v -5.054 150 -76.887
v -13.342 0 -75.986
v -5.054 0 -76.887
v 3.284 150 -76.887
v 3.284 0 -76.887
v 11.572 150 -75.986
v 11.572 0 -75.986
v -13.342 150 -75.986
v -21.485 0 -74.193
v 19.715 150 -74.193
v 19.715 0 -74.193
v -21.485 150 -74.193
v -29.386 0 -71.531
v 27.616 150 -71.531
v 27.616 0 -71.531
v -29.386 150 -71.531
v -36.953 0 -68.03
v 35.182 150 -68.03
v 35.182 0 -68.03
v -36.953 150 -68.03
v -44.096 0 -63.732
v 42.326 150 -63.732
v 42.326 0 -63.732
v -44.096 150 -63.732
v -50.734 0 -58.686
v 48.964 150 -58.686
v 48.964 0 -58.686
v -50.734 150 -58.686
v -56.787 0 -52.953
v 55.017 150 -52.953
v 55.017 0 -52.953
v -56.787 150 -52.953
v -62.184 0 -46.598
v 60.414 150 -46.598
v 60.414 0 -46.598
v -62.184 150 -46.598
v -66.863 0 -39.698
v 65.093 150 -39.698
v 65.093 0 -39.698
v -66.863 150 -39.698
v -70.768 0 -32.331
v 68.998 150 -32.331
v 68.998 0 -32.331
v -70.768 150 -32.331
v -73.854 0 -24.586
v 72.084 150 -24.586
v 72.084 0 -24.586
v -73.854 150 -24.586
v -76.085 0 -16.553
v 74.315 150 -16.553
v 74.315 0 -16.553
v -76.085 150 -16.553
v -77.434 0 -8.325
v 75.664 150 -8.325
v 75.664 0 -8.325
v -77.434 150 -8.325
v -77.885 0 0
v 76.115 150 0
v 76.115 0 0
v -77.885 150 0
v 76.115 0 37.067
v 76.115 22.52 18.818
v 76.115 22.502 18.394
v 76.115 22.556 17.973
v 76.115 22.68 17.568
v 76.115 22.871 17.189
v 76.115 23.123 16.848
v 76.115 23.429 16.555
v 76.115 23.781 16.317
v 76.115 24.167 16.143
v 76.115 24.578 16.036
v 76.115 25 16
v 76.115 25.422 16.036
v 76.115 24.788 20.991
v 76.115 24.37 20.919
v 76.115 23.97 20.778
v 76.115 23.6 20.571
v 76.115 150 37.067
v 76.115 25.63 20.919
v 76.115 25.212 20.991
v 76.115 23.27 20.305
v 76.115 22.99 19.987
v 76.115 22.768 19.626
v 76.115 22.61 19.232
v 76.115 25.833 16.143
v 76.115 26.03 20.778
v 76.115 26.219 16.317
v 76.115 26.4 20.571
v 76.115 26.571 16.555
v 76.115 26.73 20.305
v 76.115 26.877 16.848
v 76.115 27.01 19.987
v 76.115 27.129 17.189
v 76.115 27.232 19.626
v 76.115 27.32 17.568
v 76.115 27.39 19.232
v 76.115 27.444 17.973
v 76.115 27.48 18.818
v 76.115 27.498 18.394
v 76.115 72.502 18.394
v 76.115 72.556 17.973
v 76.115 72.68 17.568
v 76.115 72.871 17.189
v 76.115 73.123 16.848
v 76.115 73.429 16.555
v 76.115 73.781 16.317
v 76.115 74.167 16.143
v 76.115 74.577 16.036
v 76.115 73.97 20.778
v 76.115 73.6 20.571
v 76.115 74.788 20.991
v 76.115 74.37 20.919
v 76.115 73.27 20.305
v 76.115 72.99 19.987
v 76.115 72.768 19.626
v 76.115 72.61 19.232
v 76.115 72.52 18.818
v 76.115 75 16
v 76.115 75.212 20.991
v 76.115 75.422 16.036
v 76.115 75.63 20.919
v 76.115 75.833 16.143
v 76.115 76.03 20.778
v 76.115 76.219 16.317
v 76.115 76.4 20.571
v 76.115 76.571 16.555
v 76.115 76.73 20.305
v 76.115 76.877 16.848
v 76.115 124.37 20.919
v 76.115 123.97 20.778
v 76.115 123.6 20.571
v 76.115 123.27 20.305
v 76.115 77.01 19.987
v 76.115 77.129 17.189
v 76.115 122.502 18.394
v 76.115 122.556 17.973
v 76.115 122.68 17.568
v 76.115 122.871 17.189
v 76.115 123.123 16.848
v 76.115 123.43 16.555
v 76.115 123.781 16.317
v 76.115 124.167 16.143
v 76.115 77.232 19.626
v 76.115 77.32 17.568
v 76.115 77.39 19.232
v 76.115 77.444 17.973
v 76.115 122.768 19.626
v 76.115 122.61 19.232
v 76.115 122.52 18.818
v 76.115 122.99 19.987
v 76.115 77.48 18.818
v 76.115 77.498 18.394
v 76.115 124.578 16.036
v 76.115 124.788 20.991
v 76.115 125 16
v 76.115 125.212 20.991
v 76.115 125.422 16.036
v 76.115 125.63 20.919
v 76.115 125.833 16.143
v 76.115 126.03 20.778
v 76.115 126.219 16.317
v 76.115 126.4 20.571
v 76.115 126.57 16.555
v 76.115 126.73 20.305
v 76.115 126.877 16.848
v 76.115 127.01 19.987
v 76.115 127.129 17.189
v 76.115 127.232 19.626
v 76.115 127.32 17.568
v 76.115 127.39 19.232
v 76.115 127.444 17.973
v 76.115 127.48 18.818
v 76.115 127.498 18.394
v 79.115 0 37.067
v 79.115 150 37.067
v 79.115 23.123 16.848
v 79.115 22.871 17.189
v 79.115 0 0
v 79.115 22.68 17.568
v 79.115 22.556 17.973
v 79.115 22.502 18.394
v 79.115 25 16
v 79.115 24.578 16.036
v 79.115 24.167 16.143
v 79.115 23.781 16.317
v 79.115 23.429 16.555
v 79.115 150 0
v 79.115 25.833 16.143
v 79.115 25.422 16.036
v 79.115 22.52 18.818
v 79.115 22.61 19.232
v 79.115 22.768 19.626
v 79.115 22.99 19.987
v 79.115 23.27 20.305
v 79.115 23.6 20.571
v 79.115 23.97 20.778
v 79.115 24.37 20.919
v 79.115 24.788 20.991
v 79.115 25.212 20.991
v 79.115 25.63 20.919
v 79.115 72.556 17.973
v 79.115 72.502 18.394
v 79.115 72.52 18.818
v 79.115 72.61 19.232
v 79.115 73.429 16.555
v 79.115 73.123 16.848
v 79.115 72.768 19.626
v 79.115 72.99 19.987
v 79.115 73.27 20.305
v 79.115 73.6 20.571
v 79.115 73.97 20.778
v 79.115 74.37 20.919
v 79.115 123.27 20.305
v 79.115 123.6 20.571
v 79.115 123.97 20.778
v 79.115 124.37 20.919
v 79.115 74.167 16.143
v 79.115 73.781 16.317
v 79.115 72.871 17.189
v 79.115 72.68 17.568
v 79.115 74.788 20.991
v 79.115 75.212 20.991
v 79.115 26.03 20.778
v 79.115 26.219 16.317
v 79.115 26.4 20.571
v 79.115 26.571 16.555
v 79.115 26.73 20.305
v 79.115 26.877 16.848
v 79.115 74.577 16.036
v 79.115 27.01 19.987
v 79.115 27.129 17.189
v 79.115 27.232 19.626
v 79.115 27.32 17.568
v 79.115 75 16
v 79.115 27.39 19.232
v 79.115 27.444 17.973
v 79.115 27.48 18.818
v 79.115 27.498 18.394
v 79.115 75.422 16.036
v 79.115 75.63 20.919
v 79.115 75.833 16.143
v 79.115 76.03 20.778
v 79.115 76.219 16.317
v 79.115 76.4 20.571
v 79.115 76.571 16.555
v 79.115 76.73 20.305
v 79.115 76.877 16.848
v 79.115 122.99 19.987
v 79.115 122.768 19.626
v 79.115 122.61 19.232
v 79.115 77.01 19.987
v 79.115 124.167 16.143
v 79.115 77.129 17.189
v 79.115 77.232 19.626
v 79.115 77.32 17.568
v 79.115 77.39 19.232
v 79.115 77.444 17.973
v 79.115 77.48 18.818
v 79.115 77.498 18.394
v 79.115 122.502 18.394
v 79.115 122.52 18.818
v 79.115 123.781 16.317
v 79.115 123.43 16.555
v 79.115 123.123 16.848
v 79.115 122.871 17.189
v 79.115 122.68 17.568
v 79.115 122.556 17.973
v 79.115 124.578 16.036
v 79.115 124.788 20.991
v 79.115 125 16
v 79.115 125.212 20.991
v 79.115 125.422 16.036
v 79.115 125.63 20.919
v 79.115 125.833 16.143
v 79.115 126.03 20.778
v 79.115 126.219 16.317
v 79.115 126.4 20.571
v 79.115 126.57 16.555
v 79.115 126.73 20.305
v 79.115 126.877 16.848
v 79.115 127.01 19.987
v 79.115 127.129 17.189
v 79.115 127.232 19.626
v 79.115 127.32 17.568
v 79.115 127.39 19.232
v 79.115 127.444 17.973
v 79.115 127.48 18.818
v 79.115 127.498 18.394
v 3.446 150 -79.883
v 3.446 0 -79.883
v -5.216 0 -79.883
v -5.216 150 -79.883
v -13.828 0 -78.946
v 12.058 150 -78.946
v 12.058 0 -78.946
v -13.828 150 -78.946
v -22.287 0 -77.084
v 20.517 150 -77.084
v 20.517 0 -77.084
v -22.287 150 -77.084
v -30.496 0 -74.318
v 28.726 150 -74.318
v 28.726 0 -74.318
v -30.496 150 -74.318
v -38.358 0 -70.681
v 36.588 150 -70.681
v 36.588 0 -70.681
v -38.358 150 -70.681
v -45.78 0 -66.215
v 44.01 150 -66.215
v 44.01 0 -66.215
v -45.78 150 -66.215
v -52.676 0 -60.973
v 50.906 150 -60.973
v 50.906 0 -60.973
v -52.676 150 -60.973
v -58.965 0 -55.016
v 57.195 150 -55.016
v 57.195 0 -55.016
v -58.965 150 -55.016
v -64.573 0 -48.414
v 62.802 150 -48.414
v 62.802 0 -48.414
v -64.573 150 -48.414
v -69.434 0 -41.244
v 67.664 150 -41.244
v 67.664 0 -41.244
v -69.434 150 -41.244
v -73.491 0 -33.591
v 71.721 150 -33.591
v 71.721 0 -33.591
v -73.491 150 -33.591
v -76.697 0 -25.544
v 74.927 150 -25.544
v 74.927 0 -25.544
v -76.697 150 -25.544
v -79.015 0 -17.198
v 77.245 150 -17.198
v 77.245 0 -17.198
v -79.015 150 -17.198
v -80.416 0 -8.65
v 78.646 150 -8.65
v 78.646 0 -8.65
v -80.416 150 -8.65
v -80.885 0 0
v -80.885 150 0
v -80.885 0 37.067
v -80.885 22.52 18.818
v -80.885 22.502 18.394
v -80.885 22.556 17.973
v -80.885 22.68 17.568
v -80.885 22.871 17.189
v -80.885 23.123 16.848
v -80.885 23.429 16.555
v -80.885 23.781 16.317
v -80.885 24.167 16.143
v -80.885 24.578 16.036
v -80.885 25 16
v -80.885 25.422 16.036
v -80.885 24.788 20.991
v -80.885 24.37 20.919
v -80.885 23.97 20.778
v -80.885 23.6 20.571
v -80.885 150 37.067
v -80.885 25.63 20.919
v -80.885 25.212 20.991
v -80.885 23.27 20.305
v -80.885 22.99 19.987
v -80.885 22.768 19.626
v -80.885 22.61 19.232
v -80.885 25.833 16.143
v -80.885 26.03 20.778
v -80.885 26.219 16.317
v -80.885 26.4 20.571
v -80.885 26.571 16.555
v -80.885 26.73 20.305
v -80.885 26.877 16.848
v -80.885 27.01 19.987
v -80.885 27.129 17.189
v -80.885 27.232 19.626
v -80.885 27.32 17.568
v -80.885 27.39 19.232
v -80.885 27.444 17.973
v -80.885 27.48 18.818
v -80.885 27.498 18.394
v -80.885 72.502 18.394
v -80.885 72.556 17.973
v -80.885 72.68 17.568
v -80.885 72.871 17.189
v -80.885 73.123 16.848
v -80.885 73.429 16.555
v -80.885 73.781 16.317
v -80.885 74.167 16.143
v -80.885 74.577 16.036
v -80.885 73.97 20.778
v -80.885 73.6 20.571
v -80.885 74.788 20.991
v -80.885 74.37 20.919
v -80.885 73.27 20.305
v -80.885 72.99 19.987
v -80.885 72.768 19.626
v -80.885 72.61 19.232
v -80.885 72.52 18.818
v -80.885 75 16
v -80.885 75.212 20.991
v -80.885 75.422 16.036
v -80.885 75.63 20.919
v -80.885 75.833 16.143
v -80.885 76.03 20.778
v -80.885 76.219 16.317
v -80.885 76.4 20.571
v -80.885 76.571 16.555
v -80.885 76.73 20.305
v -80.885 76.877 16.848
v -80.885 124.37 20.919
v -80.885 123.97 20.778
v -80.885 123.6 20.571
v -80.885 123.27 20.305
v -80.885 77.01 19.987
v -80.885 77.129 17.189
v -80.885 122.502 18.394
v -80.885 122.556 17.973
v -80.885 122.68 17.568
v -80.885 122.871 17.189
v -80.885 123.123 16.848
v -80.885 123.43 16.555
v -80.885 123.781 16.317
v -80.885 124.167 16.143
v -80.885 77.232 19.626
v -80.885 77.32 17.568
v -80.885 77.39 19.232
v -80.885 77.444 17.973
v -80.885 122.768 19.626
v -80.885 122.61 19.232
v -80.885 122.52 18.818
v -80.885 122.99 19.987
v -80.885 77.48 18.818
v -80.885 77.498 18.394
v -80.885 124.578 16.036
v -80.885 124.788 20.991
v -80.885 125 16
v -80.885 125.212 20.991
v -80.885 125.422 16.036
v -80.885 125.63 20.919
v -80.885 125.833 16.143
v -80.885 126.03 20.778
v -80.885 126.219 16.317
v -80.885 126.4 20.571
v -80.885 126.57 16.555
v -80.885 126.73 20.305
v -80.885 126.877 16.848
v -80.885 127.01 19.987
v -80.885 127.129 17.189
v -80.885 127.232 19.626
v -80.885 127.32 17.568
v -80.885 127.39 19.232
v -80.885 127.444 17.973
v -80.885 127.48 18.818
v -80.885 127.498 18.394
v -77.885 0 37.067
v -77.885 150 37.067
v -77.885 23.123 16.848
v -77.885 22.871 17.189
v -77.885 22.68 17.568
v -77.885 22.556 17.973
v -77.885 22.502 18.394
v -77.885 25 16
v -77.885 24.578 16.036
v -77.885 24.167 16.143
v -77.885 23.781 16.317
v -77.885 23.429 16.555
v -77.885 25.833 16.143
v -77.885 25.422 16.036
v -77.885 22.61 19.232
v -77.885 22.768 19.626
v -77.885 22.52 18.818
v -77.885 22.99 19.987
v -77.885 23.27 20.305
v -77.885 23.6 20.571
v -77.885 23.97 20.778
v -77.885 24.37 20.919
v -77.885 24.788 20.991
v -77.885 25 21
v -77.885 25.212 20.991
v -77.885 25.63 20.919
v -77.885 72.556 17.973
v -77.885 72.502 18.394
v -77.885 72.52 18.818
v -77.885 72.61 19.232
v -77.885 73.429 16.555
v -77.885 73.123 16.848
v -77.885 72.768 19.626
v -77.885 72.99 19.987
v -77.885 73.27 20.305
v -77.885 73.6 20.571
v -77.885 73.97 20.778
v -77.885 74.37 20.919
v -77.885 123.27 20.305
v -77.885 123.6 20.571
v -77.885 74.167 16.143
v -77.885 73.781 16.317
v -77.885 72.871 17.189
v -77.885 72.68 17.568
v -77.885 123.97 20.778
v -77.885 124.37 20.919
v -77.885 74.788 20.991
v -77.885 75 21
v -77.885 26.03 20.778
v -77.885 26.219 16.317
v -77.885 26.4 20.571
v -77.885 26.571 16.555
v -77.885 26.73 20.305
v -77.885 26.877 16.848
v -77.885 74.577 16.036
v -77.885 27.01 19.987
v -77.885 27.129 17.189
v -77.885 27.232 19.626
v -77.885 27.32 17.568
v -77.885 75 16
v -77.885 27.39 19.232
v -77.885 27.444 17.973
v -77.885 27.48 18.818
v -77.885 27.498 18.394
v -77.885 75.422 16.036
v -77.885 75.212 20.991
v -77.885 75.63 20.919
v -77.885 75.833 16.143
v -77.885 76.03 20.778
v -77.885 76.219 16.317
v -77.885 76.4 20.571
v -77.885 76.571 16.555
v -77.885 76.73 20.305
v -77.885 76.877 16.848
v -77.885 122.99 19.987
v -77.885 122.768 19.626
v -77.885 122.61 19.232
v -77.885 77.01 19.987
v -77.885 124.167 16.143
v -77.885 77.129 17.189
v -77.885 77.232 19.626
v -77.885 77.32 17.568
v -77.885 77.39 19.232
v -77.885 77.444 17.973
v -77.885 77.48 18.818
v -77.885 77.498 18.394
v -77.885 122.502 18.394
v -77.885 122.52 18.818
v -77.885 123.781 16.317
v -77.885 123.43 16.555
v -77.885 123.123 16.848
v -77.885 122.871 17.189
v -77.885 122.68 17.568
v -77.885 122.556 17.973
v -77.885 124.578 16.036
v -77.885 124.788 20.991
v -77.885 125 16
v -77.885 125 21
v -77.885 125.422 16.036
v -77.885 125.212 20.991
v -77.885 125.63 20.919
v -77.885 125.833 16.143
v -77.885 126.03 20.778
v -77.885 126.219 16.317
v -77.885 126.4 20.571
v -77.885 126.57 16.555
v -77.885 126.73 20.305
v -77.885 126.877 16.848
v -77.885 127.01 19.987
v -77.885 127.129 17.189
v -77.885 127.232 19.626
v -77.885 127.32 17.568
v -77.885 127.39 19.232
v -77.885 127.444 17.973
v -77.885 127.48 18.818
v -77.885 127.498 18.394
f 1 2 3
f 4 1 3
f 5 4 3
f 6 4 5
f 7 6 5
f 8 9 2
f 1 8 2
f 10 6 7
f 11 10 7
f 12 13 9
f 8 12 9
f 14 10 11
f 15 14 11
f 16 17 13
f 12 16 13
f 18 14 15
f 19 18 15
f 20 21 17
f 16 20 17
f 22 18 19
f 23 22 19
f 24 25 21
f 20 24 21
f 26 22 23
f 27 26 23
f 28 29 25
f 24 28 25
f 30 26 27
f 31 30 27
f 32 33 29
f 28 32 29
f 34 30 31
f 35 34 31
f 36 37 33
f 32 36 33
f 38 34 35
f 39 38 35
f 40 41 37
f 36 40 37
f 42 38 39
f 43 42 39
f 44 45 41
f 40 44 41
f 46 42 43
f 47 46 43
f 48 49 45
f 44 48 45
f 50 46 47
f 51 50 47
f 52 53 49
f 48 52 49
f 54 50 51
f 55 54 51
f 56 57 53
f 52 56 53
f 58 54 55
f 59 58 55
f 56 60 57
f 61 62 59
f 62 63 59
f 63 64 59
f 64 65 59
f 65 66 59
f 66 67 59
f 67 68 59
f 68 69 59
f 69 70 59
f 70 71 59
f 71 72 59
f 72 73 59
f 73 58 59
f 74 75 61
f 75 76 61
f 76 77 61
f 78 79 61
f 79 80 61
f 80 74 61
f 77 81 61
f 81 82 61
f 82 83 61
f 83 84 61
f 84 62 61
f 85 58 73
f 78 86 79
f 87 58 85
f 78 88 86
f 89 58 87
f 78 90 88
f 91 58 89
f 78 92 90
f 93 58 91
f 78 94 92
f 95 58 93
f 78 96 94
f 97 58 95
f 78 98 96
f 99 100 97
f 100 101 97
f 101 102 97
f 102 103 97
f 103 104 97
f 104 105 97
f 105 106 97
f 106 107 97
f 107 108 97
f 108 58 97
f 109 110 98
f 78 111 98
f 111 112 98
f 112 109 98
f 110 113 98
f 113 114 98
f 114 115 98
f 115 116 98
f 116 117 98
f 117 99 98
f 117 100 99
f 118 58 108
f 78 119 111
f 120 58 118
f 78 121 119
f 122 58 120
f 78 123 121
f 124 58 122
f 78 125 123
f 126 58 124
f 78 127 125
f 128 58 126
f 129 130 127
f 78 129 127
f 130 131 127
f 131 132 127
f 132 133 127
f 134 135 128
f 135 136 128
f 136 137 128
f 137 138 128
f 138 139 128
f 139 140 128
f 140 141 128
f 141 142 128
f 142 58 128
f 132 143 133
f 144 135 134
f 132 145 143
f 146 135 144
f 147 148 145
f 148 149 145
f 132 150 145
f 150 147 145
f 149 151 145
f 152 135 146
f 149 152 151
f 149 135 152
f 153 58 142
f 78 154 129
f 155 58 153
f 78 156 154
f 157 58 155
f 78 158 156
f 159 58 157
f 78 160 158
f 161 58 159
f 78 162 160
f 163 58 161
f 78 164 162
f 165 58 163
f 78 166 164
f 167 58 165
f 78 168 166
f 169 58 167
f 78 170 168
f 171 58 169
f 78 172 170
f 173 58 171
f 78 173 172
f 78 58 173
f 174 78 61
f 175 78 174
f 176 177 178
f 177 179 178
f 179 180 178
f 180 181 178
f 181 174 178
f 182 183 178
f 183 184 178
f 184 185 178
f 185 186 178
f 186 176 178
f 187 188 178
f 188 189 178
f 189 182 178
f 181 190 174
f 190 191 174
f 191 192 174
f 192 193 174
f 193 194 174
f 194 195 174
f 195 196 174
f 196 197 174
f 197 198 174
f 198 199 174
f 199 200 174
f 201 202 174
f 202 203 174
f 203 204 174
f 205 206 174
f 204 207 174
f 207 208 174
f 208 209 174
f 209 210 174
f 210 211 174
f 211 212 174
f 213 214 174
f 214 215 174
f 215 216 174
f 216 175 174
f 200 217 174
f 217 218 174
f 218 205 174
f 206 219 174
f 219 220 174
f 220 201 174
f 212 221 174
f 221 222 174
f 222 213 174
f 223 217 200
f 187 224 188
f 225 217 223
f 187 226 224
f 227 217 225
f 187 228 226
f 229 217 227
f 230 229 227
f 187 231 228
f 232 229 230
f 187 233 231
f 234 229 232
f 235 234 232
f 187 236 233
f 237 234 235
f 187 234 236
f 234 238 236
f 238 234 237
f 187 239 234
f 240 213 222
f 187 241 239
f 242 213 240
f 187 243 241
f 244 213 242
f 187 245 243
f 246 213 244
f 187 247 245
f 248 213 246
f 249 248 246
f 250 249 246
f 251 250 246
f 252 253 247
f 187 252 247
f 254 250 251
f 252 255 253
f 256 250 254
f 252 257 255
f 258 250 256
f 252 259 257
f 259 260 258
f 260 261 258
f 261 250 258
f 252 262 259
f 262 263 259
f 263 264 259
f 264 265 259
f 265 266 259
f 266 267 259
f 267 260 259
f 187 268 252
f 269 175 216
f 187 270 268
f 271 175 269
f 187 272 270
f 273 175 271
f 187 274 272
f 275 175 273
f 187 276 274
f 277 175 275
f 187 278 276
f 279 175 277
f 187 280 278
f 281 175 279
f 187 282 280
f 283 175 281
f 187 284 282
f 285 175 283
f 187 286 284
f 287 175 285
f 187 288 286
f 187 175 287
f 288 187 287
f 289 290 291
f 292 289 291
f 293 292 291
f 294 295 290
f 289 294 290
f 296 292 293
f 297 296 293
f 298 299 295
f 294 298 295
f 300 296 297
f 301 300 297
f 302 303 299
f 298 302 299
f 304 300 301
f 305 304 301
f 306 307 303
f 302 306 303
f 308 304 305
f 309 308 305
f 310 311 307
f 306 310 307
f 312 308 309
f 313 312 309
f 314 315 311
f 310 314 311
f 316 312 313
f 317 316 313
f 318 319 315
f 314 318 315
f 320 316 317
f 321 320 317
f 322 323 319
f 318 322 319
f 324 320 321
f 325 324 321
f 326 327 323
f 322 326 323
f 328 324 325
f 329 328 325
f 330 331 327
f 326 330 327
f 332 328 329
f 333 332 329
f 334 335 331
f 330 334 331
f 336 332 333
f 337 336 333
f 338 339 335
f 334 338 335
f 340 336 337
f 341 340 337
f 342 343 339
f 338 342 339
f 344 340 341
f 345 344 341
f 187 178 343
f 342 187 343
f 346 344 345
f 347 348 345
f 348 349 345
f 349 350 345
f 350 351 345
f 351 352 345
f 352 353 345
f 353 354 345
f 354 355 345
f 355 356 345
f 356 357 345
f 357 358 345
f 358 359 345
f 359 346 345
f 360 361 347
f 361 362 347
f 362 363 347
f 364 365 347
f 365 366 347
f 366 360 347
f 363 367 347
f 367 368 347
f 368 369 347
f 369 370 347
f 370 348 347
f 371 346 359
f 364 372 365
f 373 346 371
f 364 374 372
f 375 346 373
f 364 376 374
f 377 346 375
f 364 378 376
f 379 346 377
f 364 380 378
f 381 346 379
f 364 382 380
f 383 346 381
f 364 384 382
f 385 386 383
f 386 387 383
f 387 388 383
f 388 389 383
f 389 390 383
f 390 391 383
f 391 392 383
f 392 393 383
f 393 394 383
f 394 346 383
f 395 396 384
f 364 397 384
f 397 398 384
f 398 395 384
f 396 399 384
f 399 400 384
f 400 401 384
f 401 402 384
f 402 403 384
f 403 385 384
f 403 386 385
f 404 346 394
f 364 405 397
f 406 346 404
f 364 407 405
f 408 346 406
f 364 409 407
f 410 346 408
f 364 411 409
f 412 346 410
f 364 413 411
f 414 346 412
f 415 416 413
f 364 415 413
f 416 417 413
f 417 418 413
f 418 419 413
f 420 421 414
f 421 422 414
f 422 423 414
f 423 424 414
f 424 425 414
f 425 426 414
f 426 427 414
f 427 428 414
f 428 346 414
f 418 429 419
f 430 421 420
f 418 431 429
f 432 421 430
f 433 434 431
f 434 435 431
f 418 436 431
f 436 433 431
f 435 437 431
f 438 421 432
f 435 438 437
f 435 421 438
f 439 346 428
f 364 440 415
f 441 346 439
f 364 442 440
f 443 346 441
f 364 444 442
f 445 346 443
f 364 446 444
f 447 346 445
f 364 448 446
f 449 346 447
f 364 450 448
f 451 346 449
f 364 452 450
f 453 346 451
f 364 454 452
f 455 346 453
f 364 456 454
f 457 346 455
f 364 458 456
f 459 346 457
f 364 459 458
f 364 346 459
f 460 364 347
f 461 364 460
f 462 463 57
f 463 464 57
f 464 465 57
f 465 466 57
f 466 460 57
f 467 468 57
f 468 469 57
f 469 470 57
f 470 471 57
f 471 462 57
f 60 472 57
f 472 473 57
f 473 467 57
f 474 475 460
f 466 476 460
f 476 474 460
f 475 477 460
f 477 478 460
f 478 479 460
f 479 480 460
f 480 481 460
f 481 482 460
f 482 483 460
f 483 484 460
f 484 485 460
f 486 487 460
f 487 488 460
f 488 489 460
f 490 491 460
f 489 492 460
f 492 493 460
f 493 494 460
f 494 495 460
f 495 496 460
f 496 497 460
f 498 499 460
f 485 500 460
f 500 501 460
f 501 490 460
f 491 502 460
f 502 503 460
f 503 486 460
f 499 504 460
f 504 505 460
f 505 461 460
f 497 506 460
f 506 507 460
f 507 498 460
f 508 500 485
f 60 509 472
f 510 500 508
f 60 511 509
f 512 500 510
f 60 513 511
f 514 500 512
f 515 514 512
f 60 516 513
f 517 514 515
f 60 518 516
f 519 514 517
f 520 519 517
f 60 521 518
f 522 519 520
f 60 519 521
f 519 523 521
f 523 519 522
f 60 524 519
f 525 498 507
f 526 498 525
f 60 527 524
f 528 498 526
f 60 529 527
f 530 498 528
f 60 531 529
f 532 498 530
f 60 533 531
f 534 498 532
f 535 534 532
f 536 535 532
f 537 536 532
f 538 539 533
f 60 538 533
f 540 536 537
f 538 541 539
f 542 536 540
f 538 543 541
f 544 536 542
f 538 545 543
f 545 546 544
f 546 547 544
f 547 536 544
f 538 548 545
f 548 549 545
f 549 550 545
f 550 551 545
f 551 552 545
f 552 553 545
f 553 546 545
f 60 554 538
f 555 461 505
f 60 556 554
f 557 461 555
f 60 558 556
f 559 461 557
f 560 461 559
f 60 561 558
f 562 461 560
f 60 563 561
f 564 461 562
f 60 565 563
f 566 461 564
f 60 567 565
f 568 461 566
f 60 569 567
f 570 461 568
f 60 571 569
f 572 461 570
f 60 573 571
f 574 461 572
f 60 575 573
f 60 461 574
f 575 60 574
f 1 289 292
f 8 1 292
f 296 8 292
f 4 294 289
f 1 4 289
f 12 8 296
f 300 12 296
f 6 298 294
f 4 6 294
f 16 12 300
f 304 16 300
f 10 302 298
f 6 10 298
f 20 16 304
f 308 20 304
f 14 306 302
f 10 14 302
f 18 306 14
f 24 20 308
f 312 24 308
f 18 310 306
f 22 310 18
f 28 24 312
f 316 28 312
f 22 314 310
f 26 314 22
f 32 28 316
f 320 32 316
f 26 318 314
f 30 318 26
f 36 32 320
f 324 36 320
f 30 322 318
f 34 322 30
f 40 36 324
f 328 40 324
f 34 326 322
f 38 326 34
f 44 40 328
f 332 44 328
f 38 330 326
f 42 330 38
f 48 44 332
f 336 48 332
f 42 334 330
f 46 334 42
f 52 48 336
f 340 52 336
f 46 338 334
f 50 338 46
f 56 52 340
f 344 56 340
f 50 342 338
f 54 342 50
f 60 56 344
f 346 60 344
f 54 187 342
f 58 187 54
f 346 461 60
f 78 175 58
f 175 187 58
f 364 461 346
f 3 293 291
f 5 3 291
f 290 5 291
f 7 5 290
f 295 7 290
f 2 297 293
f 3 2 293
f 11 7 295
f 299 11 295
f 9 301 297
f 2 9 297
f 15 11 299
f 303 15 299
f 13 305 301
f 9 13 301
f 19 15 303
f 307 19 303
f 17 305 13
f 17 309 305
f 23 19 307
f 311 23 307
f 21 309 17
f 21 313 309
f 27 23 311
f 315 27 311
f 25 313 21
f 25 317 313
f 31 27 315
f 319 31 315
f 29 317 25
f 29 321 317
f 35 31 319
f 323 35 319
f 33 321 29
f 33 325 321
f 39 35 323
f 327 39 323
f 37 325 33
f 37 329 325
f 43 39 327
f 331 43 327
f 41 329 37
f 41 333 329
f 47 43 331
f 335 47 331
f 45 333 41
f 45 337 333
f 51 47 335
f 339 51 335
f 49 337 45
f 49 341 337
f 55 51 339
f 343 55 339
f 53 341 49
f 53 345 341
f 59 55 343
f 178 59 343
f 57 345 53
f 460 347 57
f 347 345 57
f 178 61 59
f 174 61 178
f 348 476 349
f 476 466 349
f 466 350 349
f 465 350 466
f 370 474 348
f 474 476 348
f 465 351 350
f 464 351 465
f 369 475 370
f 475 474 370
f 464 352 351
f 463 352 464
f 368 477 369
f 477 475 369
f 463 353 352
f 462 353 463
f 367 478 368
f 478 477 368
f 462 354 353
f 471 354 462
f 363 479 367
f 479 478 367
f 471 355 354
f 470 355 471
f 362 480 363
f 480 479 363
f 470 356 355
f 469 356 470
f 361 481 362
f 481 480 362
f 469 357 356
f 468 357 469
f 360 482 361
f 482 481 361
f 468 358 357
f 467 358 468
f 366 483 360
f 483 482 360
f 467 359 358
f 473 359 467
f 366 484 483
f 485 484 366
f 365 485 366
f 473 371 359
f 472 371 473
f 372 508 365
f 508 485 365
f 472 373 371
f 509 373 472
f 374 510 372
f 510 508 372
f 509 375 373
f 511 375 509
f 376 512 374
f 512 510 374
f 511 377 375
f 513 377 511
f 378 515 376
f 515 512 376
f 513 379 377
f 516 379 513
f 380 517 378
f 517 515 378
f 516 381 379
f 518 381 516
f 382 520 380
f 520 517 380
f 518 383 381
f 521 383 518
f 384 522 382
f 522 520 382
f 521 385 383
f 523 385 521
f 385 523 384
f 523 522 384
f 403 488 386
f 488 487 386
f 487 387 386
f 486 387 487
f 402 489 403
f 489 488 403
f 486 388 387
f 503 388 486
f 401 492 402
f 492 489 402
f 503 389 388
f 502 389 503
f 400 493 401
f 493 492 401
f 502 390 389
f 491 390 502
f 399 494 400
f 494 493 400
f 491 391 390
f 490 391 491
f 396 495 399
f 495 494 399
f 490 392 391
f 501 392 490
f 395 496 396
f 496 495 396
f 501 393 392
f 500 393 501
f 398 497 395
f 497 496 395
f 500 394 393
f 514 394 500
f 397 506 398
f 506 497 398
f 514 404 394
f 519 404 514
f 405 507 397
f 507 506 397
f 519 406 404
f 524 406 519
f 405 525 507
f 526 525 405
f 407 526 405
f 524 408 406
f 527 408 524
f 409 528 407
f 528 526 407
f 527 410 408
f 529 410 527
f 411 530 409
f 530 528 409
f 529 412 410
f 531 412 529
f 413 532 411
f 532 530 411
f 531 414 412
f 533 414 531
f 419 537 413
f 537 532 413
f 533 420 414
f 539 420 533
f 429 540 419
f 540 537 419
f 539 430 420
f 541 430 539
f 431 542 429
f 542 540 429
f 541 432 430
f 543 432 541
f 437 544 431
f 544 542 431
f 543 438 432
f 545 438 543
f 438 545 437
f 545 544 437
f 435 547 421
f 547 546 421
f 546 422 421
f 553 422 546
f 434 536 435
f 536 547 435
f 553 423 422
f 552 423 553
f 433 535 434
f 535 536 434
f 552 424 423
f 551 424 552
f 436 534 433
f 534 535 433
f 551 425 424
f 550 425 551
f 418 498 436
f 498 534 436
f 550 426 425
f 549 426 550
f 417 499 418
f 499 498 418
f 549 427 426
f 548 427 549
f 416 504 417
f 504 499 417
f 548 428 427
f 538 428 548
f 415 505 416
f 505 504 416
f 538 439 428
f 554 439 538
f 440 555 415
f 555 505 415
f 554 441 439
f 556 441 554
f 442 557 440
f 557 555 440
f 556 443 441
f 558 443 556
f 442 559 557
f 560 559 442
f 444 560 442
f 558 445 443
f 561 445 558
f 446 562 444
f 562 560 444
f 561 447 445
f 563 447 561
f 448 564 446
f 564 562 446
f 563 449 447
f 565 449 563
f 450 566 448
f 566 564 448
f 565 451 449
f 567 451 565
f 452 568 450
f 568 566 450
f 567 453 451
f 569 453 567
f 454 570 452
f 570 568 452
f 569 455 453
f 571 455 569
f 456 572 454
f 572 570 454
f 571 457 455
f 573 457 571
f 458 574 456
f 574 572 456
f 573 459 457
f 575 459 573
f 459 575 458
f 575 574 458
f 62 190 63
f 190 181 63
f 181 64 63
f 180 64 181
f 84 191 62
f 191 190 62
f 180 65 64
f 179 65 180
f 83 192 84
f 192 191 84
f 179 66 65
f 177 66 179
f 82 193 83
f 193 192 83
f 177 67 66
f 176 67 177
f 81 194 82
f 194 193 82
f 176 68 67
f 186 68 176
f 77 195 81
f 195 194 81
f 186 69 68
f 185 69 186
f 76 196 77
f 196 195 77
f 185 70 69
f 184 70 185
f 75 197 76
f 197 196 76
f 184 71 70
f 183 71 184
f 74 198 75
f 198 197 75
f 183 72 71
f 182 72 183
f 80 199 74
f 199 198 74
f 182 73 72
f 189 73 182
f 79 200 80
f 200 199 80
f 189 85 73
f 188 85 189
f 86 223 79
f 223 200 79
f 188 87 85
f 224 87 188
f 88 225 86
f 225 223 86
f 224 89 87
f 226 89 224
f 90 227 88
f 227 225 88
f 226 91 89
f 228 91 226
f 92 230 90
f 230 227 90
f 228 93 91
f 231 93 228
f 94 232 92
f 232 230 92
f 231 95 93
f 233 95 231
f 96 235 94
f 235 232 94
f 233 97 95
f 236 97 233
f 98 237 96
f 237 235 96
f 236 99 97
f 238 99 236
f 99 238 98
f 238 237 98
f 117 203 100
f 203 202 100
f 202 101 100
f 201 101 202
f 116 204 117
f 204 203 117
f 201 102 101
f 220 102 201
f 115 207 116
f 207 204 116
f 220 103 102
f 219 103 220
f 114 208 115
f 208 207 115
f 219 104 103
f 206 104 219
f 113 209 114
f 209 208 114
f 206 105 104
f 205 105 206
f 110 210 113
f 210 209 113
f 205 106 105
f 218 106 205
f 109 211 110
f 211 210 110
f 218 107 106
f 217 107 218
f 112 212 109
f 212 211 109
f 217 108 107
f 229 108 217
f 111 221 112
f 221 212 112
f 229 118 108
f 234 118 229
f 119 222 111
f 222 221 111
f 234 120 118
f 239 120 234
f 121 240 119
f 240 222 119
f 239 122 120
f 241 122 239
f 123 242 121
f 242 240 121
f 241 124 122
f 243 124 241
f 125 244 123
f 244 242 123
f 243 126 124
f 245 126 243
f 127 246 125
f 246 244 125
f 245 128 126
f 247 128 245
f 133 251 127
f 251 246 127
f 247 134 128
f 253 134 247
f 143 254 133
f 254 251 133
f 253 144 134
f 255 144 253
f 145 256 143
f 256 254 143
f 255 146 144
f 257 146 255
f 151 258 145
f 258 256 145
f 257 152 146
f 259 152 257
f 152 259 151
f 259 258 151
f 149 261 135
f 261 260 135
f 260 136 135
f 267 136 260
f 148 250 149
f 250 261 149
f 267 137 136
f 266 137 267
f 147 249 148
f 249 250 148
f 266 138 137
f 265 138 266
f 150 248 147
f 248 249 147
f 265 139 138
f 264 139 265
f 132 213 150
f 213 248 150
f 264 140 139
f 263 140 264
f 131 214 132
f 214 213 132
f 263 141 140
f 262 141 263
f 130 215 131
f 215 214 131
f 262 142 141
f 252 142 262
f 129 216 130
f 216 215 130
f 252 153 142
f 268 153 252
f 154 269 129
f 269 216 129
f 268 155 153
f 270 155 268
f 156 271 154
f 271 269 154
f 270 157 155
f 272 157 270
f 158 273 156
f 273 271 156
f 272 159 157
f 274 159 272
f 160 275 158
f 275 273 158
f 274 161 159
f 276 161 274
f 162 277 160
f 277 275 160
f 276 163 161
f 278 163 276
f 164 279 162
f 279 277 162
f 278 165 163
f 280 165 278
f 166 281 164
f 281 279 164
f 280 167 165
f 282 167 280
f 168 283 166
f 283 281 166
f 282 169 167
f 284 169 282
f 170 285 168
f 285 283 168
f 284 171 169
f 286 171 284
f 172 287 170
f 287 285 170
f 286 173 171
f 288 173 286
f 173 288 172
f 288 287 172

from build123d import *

# Parameters (mm, degrees)
BOSS_EXTRUDE1_DEPTH = 150
SKETCH2_R           = 2.5
CUT_EXTRUDE1_DEPTH  = 161


with BuildPart() as part:
    # Sketch1 → Boss-Extrude1 (new body)
    with BuildSketch(Plane(origin=(0, 0, 0), x_dir=(1, 0, 0), z_dir=(0, 1, 0))):
        with BuildLine():
            Line((-80.885057471, 0), (-80.885057471, -37.067376772))
            Line((-80.885057471, -37.067376772), (-77.885057471, -37.067376772))
            Line((-77.885057471, -37.067376772), (-77.885057471, 0))
            ThreePointArc((-77.885057471, 0), (-0.885057471, 77), (76.114942529, 0))
            Line((76.114942529, 0), (76.114942529, -37.067376772))
            Line((76.114942529, -37.067376772), (79.114942529, -37.067376772))
            Line((79.114942529, -37.067376772), (79.114942529, 0))
            ThreePointArc((79.114942529, 0), (-0.885057471, 80), (-80.885057471, 0))
        make_face()
    extrude(amount=BOSS_EXTRUDE1_DEPTH)

    # Sketch2 → Cut-Extrude1 (cut, through all)
    with BuildSketch(Plane(origin=(79.114942529, 0, 0), x_dir=(0, 0, -1), z_dir=(1, 0, 0))):
        with Locations((-18.5, 125)):
            Circle(SKETCH2_R)
        with Locations((-18.5, 75)):
            Circle(SKETCH2_R)
        with Locations((-18.5, 25)):
            Circle(SKETCH2_R)
    extrude(amount=-CUT_EXTRUDE1_DEPTH, mode=Mode.SUBTRACT)


solid = part.part
